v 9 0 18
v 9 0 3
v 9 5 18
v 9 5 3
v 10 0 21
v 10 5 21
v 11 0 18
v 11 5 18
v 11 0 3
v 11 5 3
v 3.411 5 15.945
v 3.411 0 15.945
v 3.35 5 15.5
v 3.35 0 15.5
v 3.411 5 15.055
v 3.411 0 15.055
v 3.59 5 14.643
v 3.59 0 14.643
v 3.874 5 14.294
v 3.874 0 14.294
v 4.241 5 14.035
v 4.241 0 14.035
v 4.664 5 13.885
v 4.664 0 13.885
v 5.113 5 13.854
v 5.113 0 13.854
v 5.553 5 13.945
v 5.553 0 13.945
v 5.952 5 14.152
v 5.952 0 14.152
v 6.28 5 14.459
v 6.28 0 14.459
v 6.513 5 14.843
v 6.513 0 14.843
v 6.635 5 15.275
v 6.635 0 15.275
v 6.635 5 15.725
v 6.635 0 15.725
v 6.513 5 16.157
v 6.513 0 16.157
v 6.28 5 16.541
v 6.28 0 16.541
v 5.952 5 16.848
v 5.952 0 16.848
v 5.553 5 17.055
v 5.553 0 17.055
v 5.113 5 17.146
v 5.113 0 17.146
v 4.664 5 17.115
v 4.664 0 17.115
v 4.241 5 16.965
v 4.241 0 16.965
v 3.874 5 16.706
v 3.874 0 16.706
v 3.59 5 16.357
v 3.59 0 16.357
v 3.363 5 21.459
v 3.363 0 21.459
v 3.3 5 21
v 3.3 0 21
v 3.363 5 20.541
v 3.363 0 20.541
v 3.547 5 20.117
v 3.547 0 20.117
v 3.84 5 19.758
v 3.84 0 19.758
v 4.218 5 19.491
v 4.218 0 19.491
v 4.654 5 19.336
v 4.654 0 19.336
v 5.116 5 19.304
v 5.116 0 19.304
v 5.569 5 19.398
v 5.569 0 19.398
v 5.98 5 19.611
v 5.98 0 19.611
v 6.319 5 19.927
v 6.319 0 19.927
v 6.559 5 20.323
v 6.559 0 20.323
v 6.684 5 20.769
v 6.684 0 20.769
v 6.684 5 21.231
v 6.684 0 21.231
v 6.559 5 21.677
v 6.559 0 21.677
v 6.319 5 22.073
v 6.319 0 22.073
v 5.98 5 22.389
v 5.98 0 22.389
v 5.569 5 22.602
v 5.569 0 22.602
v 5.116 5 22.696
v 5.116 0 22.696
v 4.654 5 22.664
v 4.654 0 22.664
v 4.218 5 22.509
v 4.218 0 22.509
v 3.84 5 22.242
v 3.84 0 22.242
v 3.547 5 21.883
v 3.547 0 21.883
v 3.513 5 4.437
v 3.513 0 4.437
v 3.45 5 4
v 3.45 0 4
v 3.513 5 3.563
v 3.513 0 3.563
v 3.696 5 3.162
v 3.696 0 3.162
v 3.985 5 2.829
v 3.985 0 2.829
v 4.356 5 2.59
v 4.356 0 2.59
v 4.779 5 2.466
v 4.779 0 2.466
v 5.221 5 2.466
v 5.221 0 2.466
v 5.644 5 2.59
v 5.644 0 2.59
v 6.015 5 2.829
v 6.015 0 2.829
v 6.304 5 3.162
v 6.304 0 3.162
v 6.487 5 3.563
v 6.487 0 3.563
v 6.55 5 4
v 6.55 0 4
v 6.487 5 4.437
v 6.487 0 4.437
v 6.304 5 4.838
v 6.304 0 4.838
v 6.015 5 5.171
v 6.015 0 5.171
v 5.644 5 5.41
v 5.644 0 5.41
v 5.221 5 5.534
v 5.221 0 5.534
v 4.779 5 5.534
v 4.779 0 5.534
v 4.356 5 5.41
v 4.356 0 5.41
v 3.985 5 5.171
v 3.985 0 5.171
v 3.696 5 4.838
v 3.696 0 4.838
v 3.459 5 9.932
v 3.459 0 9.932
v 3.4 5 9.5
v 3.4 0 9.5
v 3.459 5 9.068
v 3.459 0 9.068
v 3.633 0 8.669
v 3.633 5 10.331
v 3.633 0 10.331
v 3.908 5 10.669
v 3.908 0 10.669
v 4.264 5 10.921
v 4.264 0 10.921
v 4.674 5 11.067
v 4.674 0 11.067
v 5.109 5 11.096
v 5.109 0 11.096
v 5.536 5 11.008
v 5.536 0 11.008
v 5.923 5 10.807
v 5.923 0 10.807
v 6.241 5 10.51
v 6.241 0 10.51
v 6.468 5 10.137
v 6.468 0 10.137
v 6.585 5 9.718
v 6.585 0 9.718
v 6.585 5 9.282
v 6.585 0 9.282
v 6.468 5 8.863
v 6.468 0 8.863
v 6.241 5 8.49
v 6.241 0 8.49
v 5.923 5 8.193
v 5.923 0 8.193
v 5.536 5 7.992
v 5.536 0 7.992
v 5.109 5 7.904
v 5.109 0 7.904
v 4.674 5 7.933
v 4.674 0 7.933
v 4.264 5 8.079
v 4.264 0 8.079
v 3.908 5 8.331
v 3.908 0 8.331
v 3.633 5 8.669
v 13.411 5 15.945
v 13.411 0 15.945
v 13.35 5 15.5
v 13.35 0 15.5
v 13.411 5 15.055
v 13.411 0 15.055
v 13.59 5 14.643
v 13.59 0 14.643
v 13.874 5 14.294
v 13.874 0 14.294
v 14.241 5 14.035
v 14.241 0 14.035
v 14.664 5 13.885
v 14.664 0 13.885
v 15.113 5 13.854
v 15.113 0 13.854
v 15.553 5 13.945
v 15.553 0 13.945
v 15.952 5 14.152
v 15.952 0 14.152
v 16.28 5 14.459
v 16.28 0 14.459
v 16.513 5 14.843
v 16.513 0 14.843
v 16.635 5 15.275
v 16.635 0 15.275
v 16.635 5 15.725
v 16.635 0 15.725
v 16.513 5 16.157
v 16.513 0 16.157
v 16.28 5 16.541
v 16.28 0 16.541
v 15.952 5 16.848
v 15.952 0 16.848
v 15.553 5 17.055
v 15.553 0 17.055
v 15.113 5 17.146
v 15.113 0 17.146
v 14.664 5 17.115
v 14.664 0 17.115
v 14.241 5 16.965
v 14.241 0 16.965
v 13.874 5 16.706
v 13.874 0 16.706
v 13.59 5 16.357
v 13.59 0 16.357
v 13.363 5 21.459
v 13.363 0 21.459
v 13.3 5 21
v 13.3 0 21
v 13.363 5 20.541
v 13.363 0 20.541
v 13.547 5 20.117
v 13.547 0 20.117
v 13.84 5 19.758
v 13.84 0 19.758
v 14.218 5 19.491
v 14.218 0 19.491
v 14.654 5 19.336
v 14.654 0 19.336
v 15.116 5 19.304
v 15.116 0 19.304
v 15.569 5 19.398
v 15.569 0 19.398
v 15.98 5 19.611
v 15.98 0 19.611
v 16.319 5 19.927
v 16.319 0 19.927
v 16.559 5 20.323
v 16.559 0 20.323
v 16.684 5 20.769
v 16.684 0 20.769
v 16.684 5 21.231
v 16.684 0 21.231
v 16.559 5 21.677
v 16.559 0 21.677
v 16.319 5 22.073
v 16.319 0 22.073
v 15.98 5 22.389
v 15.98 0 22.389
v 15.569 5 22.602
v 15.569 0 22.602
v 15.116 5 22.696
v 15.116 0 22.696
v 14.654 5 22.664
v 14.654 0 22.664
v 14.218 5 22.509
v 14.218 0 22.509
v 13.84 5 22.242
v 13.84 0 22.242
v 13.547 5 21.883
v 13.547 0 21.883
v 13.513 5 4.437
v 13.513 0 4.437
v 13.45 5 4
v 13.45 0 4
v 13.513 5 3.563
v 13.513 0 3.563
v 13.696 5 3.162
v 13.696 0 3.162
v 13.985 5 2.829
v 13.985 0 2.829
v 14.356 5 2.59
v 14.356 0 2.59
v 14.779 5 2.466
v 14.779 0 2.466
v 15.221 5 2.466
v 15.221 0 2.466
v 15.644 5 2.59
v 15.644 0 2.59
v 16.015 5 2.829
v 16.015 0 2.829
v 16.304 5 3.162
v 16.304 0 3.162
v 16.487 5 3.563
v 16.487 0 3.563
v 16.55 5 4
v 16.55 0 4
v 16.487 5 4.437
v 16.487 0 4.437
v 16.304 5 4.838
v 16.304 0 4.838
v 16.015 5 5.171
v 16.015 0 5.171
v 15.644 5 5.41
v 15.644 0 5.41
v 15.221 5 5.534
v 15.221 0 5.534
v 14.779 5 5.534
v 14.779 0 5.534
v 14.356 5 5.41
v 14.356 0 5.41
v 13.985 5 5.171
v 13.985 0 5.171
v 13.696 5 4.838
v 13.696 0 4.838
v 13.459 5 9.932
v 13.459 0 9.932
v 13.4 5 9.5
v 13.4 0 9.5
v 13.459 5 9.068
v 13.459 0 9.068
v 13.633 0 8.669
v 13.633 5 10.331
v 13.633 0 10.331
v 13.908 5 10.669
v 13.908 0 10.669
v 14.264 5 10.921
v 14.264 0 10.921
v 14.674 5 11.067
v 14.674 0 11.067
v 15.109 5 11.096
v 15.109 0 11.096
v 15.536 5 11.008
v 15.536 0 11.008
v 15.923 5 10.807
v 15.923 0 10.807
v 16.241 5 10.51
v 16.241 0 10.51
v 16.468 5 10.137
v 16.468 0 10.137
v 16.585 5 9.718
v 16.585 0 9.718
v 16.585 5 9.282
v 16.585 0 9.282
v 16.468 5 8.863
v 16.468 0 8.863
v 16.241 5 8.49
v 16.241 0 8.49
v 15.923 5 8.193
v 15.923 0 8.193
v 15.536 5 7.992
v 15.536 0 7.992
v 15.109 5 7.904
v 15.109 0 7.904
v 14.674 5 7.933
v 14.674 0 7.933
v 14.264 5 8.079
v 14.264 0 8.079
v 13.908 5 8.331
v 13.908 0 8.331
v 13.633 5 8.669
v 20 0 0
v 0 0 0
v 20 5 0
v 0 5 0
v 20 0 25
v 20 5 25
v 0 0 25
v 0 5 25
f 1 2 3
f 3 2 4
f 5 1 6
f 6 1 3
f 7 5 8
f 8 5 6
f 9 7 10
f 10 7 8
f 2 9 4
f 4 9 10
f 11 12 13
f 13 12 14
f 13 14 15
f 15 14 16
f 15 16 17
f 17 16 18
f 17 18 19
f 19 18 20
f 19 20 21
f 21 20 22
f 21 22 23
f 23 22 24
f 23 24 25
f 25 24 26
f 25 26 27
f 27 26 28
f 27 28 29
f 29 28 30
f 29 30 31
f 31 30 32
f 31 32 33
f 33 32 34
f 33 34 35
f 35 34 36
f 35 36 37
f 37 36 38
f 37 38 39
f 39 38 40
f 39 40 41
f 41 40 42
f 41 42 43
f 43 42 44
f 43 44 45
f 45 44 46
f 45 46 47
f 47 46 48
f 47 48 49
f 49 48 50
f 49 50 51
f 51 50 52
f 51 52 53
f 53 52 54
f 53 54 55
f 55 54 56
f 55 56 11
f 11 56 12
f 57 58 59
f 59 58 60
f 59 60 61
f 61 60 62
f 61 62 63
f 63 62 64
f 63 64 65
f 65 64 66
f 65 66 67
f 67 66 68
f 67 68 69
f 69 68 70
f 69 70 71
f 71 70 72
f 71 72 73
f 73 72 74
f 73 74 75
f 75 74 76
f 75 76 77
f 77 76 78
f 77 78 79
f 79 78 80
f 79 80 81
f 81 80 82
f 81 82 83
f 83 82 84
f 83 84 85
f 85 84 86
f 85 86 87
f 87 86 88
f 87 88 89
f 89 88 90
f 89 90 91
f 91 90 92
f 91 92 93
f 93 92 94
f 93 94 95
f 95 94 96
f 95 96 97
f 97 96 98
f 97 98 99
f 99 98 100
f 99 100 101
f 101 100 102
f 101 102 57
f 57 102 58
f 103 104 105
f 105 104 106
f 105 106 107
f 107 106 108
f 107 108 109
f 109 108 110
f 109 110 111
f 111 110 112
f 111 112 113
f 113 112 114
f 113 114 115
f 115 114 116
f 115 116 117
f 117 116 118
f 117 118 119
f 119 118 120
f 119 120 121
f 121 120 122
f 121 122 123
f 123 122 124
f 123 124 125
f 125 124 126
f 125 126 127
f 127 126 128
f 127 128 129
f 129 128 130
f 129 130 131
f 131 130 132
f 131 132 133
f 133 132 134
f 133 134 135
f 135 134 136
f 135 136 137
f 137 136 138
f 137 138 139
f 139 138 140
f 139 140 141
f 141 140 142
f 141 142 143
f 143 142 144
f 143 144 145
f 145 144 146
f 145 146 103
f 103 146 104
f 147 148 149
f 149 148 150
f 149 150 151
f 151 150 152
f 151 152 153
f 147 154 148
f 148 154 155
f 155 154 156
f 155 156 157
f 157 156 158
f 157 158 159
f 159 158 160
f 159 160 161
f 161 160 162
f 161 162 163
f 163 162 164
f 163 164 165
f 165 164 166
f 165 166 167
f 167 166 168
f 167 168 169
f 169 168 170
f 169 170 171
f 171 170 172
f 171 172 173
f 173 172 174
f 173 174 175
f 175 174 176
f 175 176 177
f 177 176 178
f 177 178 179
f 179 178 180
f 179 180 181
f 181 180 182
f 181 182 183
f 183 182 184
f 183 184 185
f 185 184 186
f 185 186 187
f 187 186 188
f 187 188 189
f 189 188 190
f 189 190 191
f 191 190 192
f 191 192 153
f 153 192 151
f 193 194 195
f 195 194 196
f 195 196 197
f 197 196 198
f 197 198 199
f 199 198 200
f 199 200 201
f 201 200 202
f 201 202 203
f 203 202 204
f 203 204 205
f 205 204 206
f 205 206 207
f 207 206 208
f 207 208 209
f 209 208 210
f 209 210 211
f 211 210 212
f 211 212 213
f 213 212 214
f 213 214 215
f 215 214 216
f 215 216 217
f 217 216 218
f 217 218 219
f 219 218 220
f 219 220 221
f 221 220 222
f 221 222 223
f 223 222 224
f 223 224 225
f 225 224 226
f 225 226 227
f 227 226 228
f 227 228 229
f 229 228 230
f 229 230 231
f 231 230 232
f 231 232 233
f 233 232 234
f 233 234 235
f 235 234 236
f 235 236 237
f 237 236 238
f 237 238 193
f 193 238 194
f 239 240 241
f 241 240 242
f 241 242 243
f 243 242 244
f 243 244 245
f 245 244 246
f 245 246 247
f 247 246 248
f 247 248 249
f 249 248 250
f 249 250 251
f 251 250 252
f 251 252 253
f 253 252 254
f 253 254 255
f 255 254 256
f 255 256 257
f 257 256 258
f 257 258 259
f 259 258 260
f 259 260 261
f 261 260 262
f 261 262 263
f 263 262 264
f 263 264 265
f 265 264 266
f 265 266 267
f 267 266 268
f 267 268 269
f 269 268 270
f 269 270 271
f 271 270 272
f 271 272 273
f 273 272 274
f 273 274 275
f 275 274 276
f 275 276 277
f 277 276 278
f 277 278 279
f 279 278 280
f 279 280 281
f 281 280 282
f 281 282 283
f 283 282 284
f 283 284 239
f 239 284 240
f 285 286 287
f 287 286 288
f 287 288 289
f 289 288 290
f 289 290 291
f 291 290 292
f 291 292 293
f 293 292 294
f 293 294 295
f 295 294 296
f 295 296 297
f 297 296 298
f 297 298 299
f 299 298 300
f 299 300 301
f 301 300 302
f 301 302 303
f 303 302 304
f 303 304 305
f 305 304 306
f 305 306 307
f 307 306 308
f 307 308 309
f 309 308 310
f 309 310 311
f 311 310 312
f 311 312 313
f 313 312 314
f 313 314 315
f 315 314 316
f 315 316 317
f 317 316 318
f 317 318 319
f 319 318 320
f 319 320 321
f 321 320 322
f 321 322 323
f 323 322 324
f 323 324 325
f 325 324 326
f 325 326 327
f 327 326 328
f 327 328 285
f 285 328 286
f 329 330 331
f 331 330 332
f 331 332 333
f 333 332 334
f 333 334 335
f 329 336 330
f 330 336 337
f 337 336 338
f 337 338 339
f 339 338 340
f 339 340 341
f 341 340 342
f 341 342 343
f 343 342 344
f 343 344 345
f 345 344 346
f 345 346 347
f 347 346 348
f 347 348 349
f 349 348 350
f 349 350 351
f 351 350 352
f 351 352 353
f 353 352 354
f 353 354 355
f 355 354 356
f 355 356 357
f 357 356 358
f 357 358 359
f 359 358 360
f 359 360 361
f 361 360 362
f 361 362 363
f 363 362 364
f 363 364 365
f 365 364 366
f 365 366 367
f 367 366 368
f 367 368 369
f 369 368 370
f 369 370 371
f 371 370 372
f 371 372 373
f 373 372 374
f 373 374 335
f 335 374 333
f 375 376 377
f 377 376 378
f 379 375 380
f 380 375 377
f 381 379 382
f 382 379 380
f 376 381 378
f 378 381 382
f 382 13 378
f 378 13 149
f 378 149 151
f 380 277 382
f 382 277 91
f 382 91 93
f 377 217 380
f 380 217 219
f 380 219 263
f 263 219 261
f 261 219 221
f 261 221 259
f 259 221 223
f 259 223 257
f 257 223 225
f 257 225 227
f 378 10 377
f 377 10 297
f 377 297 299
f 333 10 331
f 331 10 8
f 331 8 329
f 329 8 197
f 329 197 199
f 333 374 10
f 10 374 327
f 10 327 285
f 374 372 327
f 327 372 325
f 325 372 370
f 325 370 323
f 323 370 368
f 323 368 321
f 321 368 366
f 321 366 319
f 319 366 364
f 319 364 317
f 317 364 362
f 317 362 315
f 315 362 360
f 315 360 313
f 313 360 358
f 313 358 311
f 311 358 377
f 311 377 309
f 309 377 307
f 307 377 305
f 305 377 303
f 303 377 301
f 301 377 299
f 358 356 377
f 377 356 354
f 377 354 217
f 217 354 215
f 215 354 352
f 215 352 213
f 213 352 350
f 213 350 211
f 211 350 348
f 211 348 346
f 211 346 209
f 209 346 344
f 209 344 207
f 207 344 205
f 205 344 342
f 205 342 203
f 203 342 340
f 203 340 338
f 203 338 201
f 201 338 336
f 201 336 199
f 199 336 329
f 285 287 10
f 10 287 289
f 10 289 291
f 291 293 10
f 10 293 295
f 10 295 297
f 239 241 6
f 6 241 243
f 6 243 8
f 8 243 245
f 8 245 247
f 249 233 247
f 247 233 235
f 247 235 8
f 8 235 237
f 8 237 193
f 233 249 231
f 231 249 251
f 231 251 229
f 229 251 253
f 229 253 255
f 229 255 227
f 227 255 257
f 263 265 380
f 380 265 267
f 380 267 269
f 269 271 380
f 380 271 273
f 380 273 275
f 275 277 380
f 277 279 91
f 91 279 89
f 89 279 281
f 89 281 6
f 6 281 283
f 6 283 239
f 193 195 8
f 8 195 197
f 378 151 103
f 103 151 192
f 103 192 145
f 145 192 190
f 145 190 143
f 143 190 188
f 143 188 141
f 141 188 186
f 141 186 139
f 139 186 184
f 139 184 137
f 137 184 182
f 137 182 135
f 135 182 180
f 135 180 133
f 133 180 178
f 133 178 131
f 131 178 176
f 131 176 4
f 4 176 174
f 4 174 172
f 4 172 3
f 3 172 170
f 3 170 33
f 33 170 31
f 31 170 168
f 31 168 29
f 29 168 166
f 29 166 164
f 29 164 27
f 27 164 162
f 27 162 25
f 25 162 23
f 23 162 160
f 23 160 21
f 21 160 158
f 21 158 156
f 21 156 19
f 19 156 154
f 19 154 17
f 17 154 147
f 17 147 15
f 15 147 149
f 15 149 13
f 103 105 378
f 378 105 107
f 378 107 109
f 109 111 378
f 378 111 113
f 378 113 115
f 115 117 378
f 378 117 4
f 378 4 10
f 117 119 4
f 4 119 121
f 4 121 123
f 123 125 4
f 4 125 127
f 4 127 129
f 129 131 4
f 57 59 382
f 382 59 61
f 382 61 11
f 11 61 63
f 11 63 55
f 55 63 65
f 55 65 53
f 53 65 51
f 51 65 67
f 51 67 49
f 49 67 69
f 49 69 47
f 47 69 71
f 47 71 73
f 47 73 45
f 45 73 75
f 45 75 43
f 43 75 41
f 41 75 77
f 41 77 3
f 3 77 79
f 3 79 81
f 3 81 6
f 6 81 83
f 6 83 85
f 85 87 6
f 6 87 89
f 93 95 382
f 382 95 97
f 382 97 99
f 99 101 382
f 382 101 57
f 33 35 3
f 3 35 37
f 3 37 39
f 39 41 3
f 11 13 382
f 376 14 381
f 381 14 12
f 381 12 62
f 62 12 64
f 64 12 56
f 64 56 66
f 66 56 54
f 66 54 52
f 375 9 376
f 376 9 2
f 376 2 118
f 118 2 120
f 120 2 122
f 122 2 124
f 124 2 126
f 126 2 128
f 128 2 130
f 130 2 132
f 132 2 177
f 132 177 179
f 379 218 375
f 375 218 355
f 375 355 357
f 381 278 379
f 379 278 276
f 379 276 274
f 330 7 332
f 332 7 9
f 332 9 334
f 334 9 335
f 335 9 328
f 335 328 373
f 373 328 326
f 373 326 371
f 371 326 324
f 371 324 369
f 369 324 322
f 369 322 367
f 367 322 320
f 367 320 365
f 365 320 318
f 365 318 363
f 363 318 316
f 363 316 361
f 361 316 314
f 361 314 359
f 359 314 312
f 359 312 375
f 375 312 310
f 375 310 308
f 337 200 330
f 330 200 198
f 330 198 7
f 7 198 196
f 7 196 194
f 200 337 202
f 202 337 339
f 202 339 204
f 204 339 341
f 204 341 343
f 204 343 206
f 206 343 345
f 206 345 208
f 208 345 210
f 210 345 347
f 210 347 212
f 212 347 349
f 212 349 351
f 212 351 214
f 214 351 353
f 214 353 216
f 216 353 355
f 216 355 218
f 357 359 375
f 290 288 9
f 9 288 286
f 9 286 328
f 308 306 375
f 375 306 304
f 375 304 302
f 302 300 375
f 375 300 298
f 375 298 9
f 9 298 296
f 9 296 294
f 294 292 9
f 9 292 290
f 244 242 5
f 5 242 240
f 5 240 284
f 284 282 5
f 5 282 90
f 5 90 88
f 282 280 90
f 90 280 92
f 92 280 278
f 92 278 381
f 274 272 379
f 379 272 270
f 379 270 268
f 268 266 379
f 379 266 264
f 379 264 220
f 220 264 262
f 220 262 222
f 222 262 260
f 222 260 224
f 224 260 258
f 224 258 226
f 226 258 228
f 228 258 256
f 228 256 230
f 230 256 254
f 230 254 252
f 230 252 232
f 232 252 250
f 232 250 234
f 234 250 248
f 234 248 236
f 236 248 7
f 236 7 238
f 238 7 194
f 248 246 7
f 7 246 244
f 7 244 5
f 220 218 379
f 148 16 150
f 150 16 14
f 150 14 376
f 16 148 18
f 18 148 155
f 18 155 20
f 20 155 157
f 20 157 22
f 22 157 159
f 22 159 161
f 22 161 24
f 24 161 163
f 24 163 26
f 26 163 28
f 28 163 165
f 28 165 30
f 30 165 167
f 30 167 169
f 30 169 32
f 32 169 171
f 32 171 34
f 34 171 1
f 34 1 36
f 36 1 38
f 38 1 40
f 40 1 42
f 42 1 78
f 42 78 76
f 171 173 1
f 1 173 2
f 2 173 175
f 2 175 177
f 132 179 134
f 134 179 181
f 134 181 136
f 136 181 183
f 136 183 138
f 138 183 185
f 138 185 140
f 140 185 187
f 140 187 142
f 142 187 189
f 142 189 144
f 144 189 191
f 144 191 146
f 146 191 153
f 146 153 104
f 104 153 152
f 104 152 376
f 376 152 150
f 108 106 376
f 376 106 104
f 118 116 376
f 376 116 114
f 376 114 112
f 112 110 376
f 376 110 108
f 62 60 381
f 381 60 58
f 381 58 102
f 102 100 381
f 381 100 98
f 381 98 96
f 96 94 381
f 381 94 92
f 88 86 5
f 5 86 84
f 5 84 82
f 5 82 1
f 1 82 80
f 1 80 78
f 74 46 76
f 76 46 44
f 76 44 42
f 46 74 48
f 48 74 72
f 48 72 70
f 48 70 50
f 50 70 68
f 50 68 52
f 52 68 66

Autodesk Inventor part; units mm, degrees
ref_plane "YZ Plane" through (0, 0, 0) normal (1, 0, 0) x (0, 1, 0)
ref_plane "XZ Plane" through (0, 0, 0) normal (0, 1, 0) x (-1, 0, 0)
ref_plane "XY Plane" through (0, 0, 0) normal (0, 0, 1) x (1, 0, 0)
sketch "草图1" plane through (0, 0, 0) normal (0, 1, 0) x (-1, 0, 0)
  line L0 (0, 0) -> (-20, 0)
  line L1 (-20, 0) -> (-20, 25)
  line L2 (-20, 25) -> (0, 25)
  line L3 (0, 25) -> (0, 0)
  circle A0 centre (-5, 15.5) radius 1.65
  circle A1 centre (-5, 9.5) radius 1.6
  circle A2 centre (-5, 4) radius 1.55
  circle A3 centre (-5, 21) radius 1.7
  line L4 (0, 12.5) -> (-20, 12.5)
  line L5 (-10, 0) -> (-10, 25)
  circle A4 centre (-15, 15.5) radius 1.65
  circle A5 centre (-15, 9.5) radius 1.6
  circle A6 centre (-15, 4) radius 1.55
  circle A7 centre (-15, 21) radius 1.7
  line L6 (-11, 3) -> (-9, 3)
  line L7 (-9, 3) -> (-9, 18)
  line L8 (-9, 18) -> (-11, 18)
  line L9 (-11, 18) -> (-11, 3)
  line L10 (-11, 18) -> (-10, 21)
  line L11 (-9, 18) -> (-10, 21)
  dimension "d0" = 20
  dimension "d1" = 25
  dimension "d2" = 3.3
  dimension "d3" = 3.2
  dimension "d4" = 3.1
  dimension "d5" = 3.4
  dimension "d6" = 4
  dimension "d7" = 5
  dimension "d9" = 3
  dimension "d10" = 5
  dimension "d11" = 5
  dimension "d12" = 3
  dimension "d13" = 5
  dimension "d14" = 4
  dimension "d17" = 2
  dimension "d18" = 15
  dimension "d19" = 9
  dimension "d20" = 3
  dimension "d21" = 3
extrude "拉伸1" add sketch "草图1" along normal blind 5 contours L0 L5 L6 L7 L4 L3 | L0 L1 L4 L9 L6 L5 | L4 L7 L11 L5 L2 L3 | L1 L2 L5 L10 L9 L4
properties part number "PAACF测试板"
